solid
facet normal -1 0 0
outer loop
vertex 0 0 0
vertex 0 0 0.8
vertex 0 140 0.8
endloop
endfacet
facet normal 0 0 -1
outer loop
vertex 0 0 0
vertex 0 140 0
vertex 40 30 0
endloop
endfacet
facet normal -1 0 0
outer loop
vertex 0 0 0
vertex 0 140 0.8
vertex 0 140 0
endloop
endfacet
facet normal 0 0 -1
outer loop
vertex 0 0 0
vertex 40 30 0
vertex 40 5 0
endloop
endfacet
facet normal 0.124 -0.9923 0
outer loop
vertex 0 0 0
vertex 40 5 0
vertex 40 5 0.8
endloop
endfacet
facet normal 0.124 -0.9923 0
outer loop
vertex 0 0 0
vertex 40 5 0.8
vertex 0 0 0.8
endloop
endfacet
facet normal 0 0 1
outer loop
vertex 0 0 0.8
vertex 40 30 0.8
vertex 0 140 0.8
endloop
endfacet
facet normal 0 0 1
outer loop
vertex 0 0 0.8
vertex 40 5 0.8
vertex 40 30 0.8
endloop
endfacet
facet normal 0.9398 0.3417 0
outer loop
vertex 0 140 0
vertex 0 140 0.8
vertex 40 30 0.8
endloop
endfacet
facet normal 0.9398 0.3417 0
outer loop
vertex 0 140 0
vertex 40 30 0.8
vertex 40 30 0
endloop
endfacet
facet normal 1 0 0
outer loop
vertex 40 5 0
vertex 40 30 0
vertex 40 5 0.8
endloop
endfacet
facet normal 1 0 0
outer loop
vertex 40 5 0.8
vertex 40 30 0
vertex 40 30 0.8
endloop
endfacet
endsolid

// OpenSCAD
// file: ../config.scad
//hull
outer_diameter = 50;
wall_thickness = 0.5;
motor_wall_thickness = 1.5;
motor_holder_count = 3;
stage_height = 160;

//stabilizers_holder
stabilizers_count = 3;
stabilizers_thickness = 0.8;
stabilizers_holder_width = 2.5;
stabilizers_height = 140;
stabilizers_angle = 75;
stabilizers_width = 40;
stabilizers_bottom_hop = 5;
stabilizers_outer_height = 30;
stabilizer_hloder_thickness = 0.8;

//motor
motor_diameter = 25.3;
motor_height = 70;

//stage joint
joint_outer_diameter = 48;
joint_height = 10;
stage_joint_height = 15;

//container
container_height = 80;
container_outer_diameter = 55;
container_wall_thickness = 1;
container_transition_height = 10;

//nosecone
cone_joint_outer_diameter = 52.5;
// main file
include <../config.scad>

points = [
    [0, 0, 0],
    [stabilizers_width, stabilizers_bottom_hop, 0],
    [stabilizers_width, stabilizers_outer_height, 0],
    [0, stabilizers_height, 0],
    [0, 0, stabilizers_thickness],
    [stabilizers_width, stabilizers_bottom_hop, stabilizers_thickness],
    [stabilizers_width, stabilizers_outer_height, stabilizers_thickness],
    [0, stabilizers_height, stabilizers_thickness]
];

faces = [
    [0,1,2,3],
    [4,5,1,0],
    [7,6,5,4],
    [5,6,2,1],
    [6,7,3,2],
    [7,4,0,3]
];

polyhedron(points, faces);
